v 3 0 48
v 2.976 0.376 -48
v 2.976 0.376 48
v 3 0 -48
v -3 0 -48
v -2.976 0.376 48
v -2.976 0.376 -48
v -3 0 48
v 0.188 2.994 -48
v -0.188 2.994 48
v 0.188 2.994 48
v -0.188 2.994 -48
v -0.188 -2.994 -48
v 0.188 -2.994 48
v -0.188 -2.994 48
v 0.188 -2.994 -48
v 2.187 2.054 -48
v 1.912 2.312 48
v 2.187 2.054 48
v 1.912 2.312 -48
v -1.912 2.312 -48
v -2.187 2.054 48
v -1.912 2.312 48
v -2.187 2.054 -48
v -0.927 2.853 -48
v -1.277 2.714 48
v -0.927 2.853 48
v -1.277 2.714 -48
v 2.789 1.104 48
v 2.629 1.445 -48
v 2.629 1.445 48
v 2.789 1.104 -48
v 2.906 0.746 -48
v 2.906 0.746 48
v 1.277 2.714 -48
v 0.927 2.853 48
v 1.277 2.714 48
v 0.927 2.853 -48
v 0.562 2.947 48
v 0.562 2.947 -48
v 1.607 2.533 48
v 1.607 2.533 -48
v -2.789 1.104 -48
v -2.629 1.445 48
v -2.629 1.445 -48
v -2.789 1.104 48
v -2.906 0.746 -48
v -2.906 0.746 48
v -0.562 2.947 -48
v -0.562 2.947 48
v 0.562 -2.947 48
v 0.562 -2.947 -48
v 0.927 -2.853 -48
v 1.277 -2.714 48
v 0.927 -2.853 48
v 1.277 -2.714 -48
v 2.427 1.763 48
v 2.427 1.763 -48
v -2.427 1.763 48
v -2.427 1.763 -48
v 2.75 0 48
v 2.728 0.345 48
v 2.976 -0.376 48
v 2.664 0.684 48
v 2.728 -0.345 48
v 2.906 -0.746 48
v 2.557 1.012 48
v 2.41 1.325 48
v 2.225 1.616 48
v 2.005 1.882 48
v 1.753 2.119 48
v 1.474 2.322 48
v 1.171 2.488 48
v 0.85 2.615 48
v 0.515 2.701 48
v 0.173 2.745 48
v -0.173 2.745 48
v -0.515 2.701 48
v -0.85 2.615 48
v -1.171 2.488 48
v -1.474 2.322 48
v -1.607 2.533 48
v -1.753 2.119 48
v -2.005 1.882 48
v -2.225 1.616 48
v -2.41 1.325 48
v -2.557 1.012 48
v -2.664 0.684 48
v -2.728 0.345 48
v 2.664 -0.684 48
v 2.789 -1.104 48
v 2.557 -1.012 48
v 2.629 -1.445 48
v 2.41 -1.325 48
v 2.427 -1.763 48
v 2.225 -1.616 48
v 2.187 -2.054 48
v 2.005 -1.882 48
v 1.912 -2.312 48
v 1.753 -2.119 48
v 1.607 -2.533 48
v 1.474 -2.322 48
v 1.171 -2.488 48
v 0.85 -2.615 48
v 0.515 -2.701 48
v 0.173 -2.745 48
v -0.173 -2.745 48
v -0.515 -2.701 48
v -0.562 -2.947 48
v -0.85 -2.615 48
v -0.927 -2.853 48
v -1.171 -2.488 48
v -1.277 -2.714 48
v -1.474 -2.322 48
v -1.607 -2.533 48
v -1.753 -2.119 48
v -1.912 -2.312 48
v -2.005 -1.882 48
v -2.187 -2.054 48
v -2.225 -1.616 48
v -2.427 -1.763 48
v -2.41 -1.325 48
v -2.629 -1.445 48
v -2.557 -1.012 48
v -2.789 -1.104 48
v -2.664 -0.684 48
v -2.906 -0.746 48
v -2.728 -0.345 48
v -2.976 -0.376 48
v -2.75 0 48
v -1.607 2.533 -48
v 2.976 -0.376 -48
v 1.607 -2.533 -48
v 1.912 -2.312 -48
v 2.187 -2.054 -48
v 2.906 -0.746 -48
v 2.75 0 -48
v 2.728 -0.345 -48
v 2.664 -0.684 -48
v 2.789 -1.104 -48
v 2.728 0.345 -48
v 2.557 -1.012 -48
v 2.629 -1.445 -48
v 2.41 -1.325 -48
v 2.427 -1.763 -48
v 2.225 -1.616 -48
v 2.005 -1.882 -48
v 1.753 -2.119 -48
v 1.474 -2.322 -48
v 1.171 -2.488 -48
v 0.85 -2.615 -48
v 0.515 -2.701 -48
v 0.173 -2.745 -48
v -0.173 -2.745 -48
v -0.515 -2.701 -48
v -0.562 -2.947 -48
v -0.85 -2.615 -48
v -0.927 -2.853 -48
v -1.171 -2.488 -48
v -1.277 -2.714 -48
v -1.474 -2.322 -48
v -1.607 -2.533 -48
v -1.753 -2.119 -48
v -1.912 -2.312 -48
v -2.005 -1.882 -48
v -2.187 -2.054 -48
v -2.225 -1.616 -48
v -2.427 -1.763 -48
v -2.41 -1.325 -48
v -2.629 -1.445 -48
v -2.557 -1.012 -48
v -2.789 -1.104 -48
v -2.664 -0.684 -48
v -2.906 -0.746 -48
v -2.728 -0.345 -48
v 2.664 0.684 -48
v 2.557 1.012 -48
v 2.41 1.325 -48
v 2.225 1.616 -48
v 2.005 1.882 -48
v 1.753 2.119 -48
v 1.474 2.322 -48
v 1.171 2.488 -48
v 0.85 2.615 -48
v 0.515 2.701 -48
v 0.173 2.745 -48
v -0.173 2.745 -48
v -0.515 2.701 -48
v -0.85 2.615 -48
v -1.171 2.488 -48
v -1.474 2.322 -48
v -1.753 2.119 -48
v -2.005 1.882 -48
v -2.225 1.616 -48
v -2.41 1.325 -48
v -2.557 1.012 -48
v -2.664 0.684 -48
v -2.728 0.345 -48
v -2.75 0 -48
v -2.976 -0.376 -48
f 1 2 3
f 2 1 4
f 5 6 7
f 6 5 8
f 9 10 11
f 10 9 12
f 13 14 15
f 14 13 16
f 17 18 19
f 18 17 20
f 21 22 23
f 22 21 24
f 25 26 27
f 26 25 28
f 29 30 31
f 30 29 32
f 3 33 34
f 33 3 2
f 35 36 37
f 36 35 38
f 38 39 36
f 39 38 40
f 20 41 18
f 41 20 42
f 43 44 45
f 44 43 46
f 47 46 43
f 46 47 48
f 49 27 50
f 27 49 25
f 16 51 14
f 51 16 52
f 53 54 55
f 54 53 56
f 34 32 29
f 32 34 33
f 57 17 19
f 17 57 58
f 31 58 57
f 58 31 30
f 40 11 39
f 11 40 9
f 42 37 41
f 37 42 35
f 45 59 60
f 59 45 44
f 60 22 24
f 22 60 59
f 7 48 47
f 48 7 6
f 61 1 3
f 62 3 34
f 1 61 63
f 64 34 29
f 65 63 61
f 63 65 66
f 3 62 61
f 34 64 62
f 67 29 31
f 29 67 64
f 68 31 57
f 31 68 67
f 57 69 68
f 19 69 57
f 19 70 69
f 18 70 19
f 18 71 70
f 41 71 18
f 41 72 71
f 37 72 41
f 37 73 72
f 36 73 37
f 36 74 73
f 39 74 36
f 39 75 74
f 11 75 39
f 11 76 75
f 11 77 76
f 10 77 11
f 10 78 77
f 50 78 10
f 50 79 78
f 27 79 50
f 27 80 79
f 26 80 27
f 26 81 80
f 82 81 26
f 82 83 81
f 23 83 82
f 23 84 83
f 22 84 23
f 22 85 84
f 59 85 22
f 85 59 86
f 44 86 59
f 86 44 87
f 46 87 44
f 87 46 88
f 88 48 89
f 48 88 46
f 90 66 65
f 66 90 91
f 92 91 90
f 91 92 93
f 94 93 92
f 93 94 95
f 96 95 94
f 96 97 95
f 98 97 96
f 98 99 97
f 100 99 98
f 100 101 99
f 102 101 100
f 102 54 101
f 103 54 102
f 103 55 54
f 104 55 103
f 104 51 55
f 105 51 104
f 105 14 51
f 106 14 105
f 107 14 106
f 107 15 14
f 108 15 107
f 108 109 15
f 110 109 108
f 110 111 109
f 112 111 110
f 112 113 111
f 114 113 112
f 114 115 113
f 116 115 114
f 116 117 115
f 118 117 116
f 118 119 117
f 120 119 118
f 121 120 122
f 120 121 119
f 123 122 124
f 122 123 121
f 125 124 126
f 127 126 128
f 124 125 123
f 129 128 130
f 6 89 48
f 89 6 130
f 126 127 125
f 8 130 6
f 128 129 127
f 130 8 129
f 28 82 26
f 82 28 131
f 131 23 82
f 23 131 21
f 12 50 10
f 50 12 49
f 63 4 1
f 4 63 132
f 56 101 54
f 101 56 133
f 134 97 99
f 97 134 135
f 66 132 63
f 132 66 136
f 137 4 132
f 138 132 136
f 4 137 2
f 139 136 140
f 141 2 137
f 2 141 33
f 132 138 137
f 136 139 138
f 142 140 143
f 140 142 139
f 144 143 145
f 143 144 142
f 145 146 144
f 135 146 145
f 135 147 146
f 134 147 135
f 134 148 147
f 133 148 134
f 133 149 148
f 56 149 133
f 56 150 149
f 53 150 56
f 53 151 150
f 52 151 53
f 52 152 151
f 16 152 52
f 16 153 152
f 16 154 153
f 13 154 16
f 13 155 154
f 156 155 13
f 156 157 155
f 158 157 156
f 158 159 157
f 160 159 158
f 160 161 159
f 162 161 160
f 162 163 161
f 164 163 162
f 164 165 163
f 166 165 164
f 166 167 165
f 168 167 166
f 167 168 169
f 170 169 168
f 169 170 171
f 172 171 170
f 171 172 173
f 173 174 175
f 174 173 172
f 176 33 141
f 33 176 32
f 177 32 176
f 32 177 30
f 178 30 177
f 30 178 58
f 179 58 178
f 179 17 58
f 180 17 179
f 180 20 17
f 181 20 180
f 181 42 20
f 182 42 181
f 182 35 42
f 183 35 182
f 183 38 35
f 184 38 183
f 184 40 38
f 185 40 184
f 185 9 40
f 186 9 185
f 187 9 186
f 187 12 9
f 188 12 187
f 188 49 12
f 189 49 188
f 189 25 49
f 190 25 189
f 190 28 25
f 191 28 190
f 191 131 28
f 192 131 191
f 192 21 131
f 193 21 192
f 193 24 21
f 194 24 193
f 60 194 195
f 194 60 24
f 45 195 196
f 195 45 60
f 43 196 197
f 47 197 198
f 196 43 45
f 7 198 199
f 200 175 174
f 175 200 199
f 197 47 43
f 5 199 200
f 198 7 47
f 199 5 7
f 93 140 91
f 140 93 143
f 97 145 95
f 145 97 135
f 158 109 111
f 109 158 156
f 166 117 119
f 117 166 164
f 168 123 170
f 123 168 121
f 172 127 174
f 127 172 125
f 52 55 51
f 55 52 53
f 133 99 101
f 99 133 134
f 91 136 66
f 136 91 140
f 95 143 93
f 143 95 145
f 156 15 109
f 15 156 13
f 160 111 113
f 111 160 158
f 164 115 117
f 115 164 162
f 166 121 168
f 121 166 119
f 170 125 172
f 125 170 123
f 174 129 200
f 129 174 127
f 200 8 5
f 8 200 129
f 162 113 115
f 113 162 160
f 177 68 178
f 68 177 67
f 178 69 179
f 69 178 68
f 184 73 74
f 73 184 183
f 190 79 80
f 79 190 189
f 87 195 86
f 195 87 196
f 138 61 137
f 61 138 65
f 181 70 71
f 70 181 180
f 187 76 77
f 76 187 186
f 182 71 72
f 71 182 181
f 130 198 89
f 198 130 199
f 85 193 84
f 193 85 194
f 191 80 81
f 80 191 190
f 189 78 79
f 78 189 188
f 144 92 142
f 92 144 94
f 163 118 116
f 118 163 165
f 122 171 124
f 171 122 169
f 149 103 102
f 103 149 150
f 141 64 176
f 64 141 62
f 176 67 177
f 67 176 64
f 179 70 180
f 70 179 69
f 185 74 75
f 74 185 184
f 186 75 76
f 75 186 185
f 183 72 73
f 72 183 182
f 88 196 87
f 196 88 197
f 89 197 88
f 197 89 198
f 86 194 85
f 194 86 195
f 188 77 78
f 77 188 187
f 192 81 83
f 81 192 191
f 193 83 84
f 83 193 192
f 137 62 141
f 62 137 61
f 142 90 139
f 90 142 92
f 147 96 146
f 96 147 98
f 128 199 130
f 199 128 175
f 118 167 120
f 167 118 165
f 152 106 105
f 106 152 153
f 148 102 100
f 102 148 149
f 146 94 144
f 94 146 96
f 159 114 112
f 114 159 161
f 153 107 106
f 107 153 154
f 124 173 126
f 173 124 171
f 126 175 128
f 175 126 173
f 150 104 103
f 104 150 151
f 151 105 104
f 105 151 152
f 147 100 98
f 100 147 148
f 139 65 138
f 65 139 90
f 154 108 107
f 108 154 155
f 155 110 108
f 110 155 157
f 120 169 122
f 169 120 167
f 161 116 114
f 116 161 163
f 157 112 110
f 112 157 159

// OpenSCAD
$fn = 50;


difference() {
	union() {
		translate(v = [0, 0, -48.0000000000]) {
			cylinder(h = 96, r = 3.0000000000);
		}
	}
	union() {
		translate(v = [0, 0, -100.0000000000]) {
			cylinder(h = 200, r = 2.7500000000);
		}
	}
}
